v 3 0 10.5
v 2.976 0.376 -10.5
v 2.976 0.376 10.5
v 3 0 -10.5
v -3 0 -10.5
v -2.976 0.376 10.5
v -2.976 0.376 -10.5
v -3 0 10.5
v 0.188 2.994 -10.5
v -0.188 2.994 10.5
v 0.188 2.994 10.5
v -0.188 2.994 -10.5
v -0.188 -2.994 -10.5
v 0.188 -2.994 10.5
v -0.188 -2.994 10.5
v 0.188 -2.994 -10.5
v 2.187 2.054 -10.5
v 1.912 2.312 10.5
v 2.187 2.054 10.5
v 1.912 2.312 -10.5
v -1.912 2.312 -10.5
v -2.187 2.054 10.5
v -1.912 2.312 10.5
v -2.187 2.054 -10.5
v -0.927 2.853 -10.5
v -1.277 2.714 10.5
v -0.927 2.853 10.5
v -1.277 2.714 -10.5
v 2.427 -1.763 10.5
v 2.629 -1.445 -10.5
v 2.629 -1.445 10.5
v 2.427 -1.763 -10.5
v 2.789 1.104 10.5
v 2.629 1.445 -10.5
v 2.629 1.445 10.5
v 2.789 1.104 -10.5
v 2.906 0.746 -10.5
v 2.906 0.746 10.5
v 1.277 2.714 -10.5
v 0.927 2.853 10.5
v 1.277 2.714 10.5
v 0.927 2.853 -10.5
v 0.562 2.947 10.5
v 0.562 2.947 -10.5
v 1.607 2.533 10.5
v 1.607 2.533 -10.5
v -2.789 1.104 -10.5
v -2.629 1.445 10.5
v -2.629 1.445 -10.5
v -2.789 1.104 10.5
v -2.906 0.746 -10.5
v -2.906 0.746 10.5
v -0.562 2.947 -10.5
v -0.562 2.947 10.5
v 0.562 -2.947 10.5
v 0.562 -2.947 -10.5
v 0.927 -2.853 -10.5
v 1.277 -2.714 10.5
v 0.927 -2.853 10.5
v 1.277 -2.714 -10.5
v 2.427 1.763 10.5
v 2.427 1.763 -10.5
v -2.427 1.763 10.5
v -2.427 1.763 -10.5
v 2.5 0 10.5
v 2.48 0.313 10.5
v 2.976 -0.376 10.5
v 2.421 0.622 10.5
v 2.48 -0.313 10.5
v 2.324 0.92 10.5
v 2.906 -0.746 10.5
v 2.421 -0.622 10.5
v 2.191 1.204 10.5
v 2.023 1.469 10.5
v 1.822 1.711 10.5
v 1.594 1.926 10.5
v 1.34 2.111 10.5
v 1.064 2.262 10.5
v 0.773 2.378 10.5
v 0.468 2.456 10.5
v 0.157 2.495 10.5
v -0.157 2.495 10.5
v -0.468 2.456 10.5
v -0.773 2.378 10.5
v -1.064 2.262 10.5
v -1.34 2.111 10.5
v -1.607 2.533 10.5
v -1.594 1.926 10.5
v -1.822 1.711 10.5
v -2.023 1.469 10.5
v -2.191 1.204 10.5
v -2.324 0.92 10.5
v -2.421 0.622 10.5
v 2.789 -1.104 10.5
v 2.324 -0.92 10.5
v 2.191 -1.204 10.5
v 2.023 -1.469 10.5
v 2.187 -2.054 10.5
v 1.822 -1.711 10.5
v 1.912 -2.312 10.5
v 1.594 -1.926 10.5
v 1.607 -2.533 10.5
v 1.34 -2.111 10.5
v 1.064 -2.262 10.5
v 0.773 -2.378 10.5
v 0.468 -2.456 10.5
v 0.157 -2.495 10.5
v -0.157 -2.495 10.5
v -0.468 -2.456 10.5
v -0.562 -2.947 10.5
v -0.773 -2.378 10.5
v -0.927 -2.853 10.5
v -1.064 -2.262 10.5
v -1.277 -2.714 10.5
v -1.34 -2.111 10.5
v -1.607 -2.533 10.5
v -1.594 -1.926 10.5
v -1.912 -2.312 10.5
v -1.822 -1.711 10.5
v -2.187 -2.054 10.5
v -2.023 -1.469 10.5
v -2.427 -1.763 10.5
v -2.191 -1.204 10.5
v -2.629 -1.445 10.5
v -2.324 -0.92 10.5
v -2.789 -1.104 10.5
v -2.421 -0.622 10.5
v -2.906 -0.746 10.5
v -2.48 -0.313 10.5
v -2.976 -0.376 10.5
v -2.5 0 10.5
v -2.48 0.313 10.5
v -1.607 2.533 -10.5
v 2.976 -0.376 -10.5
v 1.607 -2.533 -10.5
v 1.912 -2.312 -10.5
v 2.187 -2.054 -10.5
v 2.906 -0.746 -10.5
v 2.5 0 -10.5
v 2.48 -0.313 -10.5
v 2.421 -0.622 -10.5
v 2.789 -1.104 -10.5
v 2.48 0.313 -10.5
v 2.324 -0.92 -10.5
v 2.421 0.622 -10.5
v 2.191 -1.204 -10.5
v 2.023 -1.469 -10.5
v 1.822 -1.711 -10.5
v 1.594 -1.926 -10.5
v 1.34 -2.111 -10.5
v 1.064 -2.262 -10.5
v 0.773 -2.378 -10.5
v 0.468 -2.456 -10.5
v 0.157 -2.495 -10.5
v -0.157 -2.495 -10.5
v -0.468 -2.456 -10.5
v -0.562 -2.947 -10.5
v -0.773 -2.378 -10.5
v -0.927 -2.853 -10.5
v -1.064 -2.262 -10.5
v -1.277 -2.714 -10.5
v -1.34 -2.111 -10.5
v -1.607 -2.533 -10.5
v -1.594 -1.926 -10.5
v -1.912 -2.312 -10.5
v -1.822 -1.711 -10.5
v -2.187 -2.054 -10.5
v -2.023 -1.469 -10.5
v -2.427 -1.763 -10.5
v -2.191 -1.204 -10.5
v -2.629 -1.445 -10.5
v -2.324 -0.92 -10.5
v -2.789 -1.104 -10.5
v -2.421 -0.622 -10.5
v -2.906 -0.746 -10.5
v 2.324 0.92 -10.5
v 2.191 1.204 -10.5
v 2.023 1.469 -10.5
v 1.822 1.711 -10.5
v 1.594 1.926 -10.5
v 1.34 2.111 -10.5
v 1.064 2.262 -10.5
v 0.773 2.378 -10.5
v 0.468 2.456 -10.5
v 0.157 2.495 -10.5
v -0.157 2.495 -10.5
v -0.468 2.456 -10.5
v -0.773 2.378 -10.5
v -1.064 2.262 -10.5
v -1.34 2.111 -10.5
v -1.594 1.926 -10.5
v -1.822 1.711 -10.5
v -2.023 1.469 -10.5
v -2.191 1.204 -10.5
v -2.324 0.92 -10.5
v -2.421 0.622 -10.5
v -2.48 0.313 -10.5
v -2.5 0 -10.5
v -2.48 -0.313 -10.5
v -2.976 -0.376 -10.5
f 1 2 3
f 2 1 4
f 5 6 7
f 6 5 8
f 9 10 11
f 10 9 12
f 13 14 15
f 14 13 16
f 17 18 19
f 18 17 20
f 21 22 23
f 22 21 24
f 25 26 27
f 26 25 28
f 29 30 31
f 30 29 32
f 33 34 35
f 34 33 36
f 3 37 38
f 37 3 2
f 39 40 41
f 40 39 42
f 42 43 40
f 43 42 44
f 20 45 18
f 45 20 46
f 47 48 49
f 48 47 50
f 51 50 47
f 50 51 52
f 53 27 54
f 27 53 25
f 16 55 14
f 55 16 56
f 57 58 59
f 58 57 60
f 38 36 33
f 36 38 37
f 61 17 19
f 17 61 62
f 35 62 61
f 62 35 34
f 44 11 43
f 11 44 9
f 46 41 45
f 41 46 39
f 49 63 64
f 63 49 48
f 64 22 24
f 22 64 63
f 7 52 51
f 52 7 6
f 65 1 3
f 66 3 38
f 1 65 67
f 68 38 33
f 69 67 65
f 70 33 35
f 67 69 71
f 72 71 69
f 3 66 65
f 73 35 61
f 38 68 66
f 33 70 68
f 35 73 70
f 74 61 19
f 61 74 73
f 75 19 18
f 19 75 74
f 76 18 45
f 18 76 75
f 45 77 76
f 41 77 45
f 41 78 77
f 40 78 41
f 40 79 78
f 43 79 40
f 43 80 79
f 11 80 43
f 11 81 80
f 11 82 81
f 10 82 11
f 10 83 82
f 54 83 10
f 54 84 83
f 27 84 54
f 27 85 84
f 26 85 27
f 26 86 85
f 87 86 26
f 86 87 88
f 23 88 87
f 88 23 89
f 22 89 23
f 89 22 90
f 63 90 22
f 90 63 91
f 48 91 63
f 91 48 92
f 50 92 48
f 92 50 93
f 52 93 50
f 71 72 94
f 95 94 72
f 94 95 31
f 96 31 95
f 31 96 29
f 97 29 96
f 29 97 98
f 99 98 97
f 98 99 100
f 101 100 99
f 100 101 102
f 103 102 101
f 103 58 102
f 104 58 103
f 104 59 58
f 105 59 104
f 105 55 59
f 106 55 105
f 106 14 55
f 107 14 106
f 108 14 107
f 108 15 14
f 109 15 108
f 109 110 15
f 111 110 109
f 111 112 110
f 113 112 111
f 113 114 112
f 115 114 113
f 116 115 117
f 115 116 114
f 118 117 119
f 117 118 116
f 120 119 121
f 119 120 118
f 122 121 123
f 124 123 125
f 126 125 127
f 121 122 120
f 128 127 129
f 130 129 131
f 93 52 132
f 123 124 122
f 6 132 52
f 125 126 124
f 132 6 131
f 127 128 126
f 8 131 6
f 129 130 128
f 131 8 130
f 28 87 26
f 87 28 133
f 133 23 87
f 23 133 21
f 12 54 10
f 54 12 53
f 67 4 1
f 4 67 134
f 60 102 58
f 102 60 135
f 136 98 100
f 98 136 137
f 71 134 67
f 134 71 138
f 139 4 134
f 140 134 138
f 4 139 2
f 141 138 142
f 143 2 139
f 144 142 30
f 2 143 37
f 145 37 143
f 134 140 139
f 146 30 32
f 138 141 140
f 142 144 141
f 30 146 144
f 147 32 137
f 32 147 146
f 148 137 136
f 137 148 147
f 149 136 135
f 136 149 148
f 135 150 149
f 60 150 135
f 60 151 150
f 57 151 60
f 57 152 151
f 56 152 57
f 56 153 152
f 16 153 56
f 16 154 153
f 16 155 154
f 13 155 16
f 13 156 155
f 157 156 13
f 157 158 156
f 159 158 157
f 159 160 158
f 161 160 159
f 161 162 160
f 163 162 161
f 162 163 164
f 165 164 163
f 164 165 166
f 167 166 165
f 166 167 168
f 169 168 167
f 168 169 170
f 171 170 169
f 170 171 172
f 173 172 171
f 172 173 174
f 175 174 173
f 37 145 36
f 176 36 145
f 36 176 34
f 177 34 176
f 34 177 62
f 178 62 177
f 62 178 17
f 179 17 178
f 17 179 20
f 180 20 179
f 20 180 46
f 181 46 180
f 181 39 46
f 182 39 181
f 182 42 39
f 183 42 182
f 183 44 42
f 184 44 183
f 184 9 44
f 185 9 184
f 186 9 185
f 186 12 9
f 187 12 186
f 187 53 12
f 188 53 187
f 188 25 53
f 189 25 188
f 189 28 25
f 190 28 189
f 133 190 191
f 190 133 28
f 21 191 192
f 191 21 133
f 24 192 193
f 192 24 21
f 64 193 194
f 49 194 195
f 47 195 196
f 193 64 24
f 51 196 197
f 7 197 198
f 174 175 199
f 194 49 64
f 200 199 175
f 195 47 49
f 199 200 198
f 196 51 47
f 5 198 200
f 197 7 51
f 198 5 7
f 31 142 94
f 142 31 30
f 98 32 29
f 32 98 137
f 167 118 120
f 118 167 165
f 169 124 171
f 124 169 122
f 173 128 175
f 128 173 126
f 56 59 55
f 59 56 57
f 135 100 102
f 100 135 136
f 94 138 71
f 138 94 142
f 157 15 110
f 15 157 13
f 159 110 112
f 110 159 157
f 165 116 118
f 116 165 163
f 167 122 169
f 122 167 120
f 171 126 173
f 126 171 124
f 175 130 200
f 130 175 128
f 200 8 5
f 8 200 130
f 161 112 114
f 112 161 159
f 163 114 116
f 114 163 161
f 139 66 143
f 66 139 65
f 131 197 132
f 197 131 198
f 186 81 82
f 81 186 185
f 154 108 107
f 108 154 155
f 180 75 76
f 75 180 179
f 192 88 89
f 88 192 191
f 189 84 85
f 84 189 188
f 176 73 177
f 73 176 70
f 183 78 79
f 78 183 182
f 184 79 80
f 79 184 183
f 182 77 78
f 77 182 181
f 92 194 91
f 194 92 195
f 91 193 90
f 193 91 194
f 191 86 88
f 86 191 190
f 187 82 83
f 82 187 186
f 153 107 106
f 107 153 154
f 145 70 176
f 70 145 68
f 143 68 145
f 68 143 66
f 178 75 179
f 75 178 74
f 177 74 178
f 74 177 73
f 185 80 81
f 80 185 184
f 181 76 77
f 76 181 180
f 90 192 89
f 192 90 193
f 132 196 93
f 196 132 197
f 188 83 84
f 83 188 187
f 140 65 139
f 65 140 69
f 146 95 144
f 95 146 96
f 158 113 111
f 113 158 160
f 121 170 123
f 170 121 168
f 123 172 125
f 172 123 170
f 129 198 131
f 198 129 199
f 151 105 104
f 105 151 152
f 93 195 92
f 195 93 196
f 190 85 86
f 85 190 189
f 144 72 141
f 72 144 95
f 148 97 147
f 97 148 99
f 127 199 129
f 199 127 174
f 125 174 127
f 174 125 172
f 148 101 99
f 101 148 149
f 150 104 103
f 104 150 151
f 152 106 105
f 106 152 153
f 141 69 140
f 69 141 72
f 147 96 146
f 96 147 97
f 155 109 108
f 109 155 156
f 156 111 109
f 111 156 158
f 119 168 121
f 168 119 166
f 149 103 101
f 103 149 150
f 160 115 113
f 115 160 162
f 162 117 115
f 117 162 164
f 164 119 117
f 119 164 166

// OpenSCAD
$fn = 50;


difference() {
	union() {
		translate(v = [0, 0, -10.5000000000]) {
			cylinder(h = 21, r = 3.0000000000);
		}
	}
	union() {
		translate(v = [0, 0, -100.0000000000]) {
			cylinder(h = 200, r = 2.5000000000);
		}
	}
}
